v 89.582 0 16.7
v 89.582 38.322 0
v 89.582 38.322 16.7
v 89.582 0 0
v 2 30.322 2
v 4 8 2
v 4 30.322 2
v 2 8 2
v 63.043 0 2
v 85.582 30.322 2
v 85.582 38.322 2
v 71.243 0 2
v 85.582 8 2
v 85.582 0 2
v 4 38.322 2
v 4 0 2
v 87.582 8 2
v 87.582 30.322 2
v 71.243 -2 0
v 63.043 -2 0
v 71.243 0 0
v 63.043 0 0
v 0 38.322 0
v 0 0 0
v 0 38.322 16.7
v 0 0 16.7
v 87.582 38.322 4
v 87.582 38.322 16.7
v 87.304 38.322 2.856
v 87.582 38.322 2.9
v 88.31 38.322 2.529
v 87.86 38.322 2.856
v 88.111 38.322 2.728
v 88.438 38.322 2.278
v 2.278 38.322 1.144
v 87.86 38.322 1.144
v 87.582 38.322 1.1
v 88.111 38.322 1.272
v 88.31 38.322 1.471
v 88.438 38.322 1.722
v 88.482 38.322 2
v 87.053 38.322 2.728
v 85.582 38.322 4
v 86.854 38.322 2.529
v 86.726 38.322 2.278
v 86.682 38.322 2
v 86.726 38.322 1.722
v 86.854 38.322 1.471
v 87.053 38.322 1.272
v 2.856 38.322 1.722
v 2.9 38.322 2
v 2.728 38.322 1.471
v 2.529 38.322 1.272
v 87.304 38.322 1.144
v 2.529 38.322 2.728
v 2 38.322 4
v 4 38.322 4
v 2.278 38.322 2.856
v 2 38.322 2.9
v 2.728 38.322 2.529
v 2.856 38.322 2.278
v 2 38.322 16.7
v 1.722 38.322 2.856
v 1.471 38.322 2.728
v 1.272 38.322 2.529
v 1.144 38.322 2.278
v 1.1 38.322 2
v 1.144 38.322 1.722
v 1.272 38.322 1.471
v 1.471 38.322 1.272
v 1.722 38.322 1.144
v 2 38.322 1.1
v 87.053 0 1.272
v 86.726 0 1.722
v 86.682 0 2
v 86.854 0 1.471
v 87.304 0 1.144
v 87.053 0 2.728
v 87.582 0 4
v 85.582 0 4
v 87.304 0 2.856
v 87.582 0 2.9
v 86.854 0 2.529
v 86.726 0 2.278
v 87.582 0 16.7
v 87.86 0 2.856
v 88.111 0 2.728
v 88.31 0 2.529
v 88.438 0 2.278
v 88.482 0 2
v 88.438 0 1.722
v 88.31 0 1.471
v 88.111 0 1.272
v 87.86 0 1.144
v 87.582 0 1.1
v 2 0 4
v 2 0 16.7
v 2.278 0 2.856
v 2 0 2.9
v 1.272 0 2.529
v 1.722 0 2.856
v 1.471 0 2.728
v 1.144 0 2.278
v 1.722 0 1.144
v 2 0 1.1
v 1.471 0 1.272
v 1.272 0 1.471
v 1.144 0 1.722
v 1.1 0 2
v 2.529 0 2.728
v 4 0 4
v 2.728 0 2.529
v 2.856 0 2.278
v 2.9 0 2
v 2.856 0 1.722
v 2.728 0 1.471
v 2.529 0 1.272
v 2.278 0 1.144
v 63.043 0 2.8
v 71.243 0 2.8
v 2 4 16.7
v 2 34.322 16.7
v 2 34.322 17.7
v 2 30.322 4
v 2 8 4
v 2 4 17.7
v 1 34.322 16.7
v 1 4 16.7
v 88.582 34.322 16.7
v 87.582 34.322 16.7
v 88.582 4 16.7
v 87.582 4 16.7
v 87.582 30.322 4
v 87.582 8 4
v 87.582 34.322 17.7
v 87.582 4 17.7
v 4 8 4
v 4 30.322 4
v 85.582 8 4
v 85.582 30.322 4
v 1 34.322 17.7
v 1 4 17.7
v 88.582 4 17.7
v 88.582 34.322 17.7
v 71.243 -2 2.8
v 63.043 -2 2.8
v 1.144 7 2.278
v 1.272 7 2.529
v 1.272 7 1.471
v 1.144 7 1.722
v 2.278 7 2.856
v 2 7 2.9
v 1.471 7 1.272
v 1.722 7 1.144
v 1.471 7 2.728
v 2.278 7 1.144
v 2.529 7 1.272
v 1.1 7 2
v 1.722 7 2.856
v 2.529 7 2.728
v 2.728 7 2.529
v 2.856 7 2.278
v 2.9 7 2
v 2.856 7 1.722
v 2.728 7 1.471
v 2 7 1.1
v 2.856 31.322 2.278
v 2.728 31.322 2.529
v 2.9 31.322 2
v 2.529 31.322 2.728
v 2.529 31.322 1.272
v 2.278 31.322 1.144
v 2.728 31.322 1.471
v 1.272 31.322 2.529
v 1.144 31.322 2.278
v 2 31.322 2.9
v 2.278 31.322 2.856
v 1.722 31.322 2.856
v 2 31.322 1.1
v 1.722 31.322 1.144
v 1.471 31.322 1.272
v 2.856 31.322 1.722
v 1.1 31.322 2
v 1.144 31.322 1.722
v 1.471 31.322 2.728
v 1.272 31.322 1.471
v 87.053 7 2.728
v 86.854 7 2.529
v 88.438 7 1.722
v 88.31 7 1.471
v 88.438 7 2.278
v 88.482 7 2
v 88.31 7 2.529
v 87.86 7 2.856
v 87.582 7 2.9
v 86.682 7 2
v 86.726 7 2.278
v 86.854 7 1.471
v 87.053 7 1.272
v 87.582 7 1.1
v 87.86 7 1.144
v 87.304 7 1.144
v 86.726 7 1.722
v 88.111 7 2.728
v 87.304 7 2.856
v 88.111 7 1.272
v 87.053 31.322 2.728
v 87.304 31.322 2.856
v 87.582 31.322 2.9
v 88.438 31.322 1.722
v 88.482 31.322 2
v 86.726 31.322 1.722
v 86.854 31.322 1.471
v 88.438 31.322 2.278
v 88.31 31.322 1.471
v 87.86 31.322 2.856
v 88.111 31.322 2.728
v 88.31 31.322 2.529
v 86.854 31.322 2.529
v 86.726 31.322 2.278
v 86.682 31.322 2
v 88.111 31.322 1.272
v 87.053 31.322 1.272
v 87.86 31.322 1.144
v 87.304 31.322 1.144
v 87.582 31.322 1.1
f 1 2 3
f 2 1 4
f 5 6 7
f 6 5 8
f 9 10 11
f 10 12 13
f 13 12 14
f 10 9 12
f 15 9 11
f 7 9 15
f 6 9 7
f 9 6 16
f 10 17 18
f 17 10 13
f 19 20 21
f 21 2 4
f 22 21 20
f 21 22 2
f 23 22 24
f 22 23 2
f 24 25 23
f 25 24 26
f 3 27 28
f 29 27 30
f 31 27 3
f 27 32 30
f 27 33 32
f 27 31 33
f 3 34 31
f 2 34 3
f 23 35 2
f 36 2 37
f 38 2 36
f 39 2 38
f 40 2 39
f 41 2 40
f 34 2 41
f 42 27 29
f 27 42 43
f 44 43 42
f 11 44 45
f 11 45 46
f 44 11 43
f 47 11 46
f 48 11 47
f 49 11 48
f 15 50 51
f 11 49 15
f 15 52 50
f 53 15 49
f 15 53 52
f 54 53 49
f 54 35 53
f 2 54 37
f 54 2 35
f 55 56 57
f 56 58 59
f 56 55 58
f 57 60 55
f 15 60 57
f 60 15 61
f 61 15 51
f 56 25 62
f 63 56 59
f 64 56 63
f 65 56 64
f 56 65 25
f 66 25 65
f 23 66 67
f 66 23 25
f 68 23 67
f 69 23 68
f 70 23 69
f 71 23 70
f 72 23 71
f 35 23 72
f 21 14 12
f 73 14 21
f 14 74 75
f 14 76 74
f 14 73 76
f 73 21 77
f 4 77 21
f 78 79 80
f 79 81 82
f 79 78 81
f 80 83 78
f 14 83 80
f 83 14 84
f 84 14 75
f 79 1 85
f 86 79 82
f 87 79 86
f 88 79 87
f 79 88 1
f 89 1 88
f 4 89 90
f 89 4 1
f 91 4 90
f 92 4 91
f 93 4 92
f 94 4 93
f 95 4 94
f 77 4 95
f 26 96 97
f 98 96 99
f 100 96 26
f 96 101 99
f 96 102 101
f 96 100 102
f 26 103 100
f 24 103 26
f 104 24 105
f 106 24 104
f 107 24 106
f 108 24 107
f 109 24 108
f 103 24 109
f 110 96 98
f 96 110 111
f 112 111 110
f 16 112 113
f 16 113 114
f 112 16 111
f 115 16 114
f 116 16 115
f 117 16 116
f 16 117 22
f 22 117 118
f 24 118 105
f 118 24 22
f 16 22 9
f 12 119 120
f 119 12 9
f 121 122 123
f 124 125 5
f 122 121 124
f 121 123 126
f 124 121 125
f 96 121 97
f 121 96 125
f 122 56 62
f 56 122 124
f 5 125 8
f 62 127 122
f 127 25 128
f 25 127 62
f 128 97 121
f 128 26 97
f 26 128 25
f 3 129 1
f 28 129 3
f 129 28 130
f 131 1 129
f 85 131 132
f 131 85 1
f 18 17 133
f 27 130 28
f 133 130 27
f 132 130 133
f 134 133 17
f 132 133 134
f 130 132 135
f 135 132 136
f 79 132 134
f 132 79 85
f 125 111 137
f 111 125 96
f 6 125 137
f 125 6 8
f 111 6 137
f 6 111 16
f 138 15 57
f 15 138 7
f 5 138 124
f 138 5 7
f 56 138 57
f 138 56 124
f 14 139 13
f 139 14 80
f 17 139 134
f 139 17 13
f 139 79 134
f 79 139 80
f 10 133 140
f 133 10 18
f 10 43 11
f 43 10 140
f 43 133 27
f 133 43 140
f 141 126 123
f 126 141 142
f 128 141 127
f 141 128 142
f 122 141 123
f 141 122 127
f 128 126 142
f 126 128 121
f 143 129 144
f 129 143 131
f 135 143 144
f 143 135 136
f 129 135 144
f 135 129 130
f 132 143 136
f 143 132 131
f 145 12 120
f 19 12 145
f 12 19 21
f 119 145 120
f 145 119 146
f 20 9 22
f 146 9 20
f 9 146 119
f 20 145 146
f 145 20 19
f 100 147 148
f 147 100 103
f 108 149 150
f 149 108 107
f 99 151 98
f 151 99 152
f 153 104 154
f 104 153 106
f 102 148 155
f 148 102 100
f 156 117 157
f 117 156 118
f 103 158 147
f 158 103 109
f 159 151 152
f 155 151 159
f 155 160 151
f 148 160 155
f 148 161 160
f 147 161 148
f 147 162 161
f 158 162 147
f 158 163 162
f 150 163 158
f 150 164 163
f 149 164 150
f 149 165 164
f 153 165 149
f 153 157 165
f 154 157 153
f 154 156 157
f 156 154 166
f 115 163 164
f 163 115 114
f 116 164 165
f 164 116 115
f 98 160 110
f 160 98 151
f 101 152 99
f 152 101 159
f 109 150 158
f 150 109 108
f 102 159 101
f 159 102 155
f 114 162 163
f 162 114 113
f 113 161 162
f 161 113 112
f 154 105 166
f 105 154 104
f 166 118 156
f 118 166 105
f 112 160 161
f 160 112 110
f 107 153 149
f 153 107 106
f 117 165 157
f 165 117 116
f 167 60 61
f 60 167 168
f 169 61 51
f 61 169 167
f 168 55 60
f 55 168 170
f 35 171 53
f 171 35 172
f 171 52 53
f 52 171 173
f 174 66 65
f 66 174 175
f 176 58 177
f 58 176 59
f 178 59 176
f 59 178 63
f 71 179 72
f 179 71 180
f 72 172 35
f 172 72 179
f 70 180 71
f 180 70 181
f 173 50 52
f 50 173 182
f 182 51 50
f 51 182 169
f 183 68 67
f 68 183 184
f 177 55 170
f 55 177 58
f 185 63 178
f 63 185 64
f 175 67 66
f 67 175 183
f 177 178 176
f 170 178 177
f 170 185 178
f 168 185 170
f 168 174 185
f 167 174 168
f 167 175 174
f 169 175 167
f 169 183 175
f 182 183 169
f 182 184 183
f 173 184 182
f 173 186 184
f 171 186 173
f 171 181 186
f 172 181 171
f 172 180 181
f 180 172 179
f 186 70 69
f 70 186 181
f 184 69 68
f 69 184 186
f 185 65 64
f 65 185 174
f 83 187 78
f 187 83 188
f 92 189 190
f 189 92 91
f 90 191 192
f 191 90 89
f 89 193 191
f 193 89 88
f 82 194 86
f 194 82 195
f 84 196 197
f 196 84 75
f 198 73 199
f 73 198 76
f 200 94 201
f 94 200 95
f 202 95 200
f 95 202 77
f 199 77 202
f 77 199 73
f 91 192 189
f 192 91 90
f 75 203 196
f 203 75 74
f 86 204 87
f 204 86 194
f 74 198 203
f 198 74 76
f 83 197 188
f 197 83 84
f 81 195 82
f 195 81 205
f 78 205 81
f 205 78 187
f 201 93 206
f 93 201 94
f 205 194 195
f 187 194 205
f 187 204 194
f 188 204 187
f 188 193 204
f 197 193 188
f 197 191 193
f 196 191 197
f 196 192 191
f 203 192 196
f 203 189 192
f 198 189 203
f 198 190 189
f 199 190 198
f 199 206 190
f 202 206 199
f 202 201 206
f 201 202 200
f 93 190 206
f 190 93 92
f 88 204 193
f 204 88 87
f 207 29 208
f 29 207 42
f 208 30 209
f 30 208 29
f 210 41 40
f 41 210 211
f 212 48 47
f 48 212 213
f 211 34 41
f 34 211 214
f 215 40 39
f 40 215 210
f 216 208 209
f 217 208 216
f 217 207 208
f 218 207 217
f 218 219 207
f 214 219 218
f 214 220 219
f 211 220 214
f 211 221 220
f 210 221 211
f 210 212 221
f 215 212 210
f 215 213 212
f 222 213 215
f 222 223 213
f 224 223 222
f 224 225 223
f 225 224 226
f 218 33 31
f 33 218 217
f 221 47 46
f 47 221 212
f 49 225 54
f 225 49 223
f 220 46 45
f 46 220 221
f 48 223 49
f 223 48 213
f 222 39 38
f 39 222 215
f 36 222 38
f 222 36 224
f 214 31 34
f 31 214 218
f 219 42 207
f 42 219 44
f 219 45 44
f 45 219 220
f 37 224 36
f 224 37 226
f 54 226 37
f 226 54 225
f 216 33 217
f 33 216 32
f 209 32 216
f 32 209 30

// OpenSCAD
// file: settings.scad
// SPDX-FileCopyrightText: 2022-2024 Rafael G. Martins <rafael@rafaelmartins.eng.br>
// SPDX-License-Identifier: CERN-OHL-S-2.0

thickness = 2;

pcb_width = 84.582;
pcb_length = 36.322;
pcb_screw1_x = 2.921;
pcb_screw1_y = pcb_length - 5.207 - 12.192;
pcb_screw2_x = pcb_screw1_x + 17.018;
pcb_screw2_y = pcb_screw1_y + 12.192;
pcb_screw3_x = pcb_screw2_x + 22.352;
pcb_screw3_y = pcb_screw2_y;
pcb_screw_base_height = 8;
pcb_screw_base_d = 5;
pcb_screw_d = 2;
pcb_padding_x = thickness + 0.5;
pcb_padding_y = thickness + 1;

screw_d = 2;
screw_h = 7;

usb_height = 4.4;
usb_width = 8.2;
usb_distance_x = pcb_padding_x + 19.939 - usb_width / 2;
usb_distance_z = thickness + pcb_screw_base_height + 1.6 - 0.1;

button0_x = 8.763;
button0_y = 6.985;
button_d = 10;
button_distance = 22.352;

led_width = 1.8;
led_length = 1;
led_margin = 1;
led_x = button0_x + 3 * button_distance;
led_y = 5.207 + 12.192;
led_d = 3.4;

gap = 0;

width = pcb_width + 2 * pcb_padding_x;
length = pcb_length + 2 * pcb_padding_y;
height = usb_distance_z + usb_height + 0.8 + thickness;
// file: ../lib/screw-base.scad
// SPDX-FileCopyrightText: 2022-2024 Rafael G. Martins <rafael@rafaelmartins.eng.br>
// SPDX-License-Identifier: CERN-OHL-S-2.0

function screw_base_dim(screw_d) = screw_d + 2;
function screw_base_height(screw_h) = screw_h + 1;


module screw_base_add(screw_d, screw_h) {
    cube([screw_base_dim(screw_d), screw_base_dim(screw_d), screw_base_height(screw_h)]);
}


module screw_base_sub(screw_d, screw_h) {
    translate([screw_base_dim(screw_d) / 2, screw_base_dim(screw_d) / 2, 0])
        cylinder(screw_h, d=screw_d - 0.2, $fn=20);
}
// main file
// SPDX-FileCopyrightText: 2022-2024 Rafael G. Martins <rafael@rafaelmartins.eng.br>
// SPDX-License-Identifier: CERN-OHL-S-2.0

include <../lib/screw-base.scad>
include <settings.scad>

length_ = length - 2 * (thickness + gap);
height_ = height - thickness - gap;

difference() {
    union() {
        cube([width, length_, thickness]);
        cube([thickness, length_, height_]);
        translate([width - thickness, 0, 0])
            cube([thickness, length_, height_]);

        rotate([-90, -90, 0])
            screw_base_add(screw_d, screw_h);
        translate([0, length_, 0])
            rotate([90, 0, 0])
                screw_base_add(screw_d, screw_h);
        translate([width, 0, 0])
            rotate([-90, 180, 0])
                screw_base_add(screw_d, screw_h);
        translate([width, length_, 0])
            rotate([90, -90, 0])
                screw_base_add(screw_d, screw_h);

        translate([thickness / 2, 4, height_])
            cube([thickness / 2, length_ - 8, thickness / 2]);
        translate([width - thickness, 4, height_])
            cube([thickness / 2, length_ - 8, thickness / 2]);

        translate([width - usb_distance_x - usb_width + gap, -(thickness + gap), 0])
            cube([usb_width - 2 * gap, thickness + gap, height - usb_distance_z - usb_height]);
    }

    rotate([-90, -90, 0])
        screw_base_sub(screw_d, screw_h);
    translate([0, length_, 0])
        rotate([90, 0, 0])
            screw_base_sub(screw_d, screw_h);
    translate([width, 0, 0])
        rotate([-90, 180, 0])
            screw_base_sub(screw_d, screw_h);
    translate([width, length_, 0])
        rotate([90, -90, 0])
            screw_base_sub(screw_d, screw_h);
}
